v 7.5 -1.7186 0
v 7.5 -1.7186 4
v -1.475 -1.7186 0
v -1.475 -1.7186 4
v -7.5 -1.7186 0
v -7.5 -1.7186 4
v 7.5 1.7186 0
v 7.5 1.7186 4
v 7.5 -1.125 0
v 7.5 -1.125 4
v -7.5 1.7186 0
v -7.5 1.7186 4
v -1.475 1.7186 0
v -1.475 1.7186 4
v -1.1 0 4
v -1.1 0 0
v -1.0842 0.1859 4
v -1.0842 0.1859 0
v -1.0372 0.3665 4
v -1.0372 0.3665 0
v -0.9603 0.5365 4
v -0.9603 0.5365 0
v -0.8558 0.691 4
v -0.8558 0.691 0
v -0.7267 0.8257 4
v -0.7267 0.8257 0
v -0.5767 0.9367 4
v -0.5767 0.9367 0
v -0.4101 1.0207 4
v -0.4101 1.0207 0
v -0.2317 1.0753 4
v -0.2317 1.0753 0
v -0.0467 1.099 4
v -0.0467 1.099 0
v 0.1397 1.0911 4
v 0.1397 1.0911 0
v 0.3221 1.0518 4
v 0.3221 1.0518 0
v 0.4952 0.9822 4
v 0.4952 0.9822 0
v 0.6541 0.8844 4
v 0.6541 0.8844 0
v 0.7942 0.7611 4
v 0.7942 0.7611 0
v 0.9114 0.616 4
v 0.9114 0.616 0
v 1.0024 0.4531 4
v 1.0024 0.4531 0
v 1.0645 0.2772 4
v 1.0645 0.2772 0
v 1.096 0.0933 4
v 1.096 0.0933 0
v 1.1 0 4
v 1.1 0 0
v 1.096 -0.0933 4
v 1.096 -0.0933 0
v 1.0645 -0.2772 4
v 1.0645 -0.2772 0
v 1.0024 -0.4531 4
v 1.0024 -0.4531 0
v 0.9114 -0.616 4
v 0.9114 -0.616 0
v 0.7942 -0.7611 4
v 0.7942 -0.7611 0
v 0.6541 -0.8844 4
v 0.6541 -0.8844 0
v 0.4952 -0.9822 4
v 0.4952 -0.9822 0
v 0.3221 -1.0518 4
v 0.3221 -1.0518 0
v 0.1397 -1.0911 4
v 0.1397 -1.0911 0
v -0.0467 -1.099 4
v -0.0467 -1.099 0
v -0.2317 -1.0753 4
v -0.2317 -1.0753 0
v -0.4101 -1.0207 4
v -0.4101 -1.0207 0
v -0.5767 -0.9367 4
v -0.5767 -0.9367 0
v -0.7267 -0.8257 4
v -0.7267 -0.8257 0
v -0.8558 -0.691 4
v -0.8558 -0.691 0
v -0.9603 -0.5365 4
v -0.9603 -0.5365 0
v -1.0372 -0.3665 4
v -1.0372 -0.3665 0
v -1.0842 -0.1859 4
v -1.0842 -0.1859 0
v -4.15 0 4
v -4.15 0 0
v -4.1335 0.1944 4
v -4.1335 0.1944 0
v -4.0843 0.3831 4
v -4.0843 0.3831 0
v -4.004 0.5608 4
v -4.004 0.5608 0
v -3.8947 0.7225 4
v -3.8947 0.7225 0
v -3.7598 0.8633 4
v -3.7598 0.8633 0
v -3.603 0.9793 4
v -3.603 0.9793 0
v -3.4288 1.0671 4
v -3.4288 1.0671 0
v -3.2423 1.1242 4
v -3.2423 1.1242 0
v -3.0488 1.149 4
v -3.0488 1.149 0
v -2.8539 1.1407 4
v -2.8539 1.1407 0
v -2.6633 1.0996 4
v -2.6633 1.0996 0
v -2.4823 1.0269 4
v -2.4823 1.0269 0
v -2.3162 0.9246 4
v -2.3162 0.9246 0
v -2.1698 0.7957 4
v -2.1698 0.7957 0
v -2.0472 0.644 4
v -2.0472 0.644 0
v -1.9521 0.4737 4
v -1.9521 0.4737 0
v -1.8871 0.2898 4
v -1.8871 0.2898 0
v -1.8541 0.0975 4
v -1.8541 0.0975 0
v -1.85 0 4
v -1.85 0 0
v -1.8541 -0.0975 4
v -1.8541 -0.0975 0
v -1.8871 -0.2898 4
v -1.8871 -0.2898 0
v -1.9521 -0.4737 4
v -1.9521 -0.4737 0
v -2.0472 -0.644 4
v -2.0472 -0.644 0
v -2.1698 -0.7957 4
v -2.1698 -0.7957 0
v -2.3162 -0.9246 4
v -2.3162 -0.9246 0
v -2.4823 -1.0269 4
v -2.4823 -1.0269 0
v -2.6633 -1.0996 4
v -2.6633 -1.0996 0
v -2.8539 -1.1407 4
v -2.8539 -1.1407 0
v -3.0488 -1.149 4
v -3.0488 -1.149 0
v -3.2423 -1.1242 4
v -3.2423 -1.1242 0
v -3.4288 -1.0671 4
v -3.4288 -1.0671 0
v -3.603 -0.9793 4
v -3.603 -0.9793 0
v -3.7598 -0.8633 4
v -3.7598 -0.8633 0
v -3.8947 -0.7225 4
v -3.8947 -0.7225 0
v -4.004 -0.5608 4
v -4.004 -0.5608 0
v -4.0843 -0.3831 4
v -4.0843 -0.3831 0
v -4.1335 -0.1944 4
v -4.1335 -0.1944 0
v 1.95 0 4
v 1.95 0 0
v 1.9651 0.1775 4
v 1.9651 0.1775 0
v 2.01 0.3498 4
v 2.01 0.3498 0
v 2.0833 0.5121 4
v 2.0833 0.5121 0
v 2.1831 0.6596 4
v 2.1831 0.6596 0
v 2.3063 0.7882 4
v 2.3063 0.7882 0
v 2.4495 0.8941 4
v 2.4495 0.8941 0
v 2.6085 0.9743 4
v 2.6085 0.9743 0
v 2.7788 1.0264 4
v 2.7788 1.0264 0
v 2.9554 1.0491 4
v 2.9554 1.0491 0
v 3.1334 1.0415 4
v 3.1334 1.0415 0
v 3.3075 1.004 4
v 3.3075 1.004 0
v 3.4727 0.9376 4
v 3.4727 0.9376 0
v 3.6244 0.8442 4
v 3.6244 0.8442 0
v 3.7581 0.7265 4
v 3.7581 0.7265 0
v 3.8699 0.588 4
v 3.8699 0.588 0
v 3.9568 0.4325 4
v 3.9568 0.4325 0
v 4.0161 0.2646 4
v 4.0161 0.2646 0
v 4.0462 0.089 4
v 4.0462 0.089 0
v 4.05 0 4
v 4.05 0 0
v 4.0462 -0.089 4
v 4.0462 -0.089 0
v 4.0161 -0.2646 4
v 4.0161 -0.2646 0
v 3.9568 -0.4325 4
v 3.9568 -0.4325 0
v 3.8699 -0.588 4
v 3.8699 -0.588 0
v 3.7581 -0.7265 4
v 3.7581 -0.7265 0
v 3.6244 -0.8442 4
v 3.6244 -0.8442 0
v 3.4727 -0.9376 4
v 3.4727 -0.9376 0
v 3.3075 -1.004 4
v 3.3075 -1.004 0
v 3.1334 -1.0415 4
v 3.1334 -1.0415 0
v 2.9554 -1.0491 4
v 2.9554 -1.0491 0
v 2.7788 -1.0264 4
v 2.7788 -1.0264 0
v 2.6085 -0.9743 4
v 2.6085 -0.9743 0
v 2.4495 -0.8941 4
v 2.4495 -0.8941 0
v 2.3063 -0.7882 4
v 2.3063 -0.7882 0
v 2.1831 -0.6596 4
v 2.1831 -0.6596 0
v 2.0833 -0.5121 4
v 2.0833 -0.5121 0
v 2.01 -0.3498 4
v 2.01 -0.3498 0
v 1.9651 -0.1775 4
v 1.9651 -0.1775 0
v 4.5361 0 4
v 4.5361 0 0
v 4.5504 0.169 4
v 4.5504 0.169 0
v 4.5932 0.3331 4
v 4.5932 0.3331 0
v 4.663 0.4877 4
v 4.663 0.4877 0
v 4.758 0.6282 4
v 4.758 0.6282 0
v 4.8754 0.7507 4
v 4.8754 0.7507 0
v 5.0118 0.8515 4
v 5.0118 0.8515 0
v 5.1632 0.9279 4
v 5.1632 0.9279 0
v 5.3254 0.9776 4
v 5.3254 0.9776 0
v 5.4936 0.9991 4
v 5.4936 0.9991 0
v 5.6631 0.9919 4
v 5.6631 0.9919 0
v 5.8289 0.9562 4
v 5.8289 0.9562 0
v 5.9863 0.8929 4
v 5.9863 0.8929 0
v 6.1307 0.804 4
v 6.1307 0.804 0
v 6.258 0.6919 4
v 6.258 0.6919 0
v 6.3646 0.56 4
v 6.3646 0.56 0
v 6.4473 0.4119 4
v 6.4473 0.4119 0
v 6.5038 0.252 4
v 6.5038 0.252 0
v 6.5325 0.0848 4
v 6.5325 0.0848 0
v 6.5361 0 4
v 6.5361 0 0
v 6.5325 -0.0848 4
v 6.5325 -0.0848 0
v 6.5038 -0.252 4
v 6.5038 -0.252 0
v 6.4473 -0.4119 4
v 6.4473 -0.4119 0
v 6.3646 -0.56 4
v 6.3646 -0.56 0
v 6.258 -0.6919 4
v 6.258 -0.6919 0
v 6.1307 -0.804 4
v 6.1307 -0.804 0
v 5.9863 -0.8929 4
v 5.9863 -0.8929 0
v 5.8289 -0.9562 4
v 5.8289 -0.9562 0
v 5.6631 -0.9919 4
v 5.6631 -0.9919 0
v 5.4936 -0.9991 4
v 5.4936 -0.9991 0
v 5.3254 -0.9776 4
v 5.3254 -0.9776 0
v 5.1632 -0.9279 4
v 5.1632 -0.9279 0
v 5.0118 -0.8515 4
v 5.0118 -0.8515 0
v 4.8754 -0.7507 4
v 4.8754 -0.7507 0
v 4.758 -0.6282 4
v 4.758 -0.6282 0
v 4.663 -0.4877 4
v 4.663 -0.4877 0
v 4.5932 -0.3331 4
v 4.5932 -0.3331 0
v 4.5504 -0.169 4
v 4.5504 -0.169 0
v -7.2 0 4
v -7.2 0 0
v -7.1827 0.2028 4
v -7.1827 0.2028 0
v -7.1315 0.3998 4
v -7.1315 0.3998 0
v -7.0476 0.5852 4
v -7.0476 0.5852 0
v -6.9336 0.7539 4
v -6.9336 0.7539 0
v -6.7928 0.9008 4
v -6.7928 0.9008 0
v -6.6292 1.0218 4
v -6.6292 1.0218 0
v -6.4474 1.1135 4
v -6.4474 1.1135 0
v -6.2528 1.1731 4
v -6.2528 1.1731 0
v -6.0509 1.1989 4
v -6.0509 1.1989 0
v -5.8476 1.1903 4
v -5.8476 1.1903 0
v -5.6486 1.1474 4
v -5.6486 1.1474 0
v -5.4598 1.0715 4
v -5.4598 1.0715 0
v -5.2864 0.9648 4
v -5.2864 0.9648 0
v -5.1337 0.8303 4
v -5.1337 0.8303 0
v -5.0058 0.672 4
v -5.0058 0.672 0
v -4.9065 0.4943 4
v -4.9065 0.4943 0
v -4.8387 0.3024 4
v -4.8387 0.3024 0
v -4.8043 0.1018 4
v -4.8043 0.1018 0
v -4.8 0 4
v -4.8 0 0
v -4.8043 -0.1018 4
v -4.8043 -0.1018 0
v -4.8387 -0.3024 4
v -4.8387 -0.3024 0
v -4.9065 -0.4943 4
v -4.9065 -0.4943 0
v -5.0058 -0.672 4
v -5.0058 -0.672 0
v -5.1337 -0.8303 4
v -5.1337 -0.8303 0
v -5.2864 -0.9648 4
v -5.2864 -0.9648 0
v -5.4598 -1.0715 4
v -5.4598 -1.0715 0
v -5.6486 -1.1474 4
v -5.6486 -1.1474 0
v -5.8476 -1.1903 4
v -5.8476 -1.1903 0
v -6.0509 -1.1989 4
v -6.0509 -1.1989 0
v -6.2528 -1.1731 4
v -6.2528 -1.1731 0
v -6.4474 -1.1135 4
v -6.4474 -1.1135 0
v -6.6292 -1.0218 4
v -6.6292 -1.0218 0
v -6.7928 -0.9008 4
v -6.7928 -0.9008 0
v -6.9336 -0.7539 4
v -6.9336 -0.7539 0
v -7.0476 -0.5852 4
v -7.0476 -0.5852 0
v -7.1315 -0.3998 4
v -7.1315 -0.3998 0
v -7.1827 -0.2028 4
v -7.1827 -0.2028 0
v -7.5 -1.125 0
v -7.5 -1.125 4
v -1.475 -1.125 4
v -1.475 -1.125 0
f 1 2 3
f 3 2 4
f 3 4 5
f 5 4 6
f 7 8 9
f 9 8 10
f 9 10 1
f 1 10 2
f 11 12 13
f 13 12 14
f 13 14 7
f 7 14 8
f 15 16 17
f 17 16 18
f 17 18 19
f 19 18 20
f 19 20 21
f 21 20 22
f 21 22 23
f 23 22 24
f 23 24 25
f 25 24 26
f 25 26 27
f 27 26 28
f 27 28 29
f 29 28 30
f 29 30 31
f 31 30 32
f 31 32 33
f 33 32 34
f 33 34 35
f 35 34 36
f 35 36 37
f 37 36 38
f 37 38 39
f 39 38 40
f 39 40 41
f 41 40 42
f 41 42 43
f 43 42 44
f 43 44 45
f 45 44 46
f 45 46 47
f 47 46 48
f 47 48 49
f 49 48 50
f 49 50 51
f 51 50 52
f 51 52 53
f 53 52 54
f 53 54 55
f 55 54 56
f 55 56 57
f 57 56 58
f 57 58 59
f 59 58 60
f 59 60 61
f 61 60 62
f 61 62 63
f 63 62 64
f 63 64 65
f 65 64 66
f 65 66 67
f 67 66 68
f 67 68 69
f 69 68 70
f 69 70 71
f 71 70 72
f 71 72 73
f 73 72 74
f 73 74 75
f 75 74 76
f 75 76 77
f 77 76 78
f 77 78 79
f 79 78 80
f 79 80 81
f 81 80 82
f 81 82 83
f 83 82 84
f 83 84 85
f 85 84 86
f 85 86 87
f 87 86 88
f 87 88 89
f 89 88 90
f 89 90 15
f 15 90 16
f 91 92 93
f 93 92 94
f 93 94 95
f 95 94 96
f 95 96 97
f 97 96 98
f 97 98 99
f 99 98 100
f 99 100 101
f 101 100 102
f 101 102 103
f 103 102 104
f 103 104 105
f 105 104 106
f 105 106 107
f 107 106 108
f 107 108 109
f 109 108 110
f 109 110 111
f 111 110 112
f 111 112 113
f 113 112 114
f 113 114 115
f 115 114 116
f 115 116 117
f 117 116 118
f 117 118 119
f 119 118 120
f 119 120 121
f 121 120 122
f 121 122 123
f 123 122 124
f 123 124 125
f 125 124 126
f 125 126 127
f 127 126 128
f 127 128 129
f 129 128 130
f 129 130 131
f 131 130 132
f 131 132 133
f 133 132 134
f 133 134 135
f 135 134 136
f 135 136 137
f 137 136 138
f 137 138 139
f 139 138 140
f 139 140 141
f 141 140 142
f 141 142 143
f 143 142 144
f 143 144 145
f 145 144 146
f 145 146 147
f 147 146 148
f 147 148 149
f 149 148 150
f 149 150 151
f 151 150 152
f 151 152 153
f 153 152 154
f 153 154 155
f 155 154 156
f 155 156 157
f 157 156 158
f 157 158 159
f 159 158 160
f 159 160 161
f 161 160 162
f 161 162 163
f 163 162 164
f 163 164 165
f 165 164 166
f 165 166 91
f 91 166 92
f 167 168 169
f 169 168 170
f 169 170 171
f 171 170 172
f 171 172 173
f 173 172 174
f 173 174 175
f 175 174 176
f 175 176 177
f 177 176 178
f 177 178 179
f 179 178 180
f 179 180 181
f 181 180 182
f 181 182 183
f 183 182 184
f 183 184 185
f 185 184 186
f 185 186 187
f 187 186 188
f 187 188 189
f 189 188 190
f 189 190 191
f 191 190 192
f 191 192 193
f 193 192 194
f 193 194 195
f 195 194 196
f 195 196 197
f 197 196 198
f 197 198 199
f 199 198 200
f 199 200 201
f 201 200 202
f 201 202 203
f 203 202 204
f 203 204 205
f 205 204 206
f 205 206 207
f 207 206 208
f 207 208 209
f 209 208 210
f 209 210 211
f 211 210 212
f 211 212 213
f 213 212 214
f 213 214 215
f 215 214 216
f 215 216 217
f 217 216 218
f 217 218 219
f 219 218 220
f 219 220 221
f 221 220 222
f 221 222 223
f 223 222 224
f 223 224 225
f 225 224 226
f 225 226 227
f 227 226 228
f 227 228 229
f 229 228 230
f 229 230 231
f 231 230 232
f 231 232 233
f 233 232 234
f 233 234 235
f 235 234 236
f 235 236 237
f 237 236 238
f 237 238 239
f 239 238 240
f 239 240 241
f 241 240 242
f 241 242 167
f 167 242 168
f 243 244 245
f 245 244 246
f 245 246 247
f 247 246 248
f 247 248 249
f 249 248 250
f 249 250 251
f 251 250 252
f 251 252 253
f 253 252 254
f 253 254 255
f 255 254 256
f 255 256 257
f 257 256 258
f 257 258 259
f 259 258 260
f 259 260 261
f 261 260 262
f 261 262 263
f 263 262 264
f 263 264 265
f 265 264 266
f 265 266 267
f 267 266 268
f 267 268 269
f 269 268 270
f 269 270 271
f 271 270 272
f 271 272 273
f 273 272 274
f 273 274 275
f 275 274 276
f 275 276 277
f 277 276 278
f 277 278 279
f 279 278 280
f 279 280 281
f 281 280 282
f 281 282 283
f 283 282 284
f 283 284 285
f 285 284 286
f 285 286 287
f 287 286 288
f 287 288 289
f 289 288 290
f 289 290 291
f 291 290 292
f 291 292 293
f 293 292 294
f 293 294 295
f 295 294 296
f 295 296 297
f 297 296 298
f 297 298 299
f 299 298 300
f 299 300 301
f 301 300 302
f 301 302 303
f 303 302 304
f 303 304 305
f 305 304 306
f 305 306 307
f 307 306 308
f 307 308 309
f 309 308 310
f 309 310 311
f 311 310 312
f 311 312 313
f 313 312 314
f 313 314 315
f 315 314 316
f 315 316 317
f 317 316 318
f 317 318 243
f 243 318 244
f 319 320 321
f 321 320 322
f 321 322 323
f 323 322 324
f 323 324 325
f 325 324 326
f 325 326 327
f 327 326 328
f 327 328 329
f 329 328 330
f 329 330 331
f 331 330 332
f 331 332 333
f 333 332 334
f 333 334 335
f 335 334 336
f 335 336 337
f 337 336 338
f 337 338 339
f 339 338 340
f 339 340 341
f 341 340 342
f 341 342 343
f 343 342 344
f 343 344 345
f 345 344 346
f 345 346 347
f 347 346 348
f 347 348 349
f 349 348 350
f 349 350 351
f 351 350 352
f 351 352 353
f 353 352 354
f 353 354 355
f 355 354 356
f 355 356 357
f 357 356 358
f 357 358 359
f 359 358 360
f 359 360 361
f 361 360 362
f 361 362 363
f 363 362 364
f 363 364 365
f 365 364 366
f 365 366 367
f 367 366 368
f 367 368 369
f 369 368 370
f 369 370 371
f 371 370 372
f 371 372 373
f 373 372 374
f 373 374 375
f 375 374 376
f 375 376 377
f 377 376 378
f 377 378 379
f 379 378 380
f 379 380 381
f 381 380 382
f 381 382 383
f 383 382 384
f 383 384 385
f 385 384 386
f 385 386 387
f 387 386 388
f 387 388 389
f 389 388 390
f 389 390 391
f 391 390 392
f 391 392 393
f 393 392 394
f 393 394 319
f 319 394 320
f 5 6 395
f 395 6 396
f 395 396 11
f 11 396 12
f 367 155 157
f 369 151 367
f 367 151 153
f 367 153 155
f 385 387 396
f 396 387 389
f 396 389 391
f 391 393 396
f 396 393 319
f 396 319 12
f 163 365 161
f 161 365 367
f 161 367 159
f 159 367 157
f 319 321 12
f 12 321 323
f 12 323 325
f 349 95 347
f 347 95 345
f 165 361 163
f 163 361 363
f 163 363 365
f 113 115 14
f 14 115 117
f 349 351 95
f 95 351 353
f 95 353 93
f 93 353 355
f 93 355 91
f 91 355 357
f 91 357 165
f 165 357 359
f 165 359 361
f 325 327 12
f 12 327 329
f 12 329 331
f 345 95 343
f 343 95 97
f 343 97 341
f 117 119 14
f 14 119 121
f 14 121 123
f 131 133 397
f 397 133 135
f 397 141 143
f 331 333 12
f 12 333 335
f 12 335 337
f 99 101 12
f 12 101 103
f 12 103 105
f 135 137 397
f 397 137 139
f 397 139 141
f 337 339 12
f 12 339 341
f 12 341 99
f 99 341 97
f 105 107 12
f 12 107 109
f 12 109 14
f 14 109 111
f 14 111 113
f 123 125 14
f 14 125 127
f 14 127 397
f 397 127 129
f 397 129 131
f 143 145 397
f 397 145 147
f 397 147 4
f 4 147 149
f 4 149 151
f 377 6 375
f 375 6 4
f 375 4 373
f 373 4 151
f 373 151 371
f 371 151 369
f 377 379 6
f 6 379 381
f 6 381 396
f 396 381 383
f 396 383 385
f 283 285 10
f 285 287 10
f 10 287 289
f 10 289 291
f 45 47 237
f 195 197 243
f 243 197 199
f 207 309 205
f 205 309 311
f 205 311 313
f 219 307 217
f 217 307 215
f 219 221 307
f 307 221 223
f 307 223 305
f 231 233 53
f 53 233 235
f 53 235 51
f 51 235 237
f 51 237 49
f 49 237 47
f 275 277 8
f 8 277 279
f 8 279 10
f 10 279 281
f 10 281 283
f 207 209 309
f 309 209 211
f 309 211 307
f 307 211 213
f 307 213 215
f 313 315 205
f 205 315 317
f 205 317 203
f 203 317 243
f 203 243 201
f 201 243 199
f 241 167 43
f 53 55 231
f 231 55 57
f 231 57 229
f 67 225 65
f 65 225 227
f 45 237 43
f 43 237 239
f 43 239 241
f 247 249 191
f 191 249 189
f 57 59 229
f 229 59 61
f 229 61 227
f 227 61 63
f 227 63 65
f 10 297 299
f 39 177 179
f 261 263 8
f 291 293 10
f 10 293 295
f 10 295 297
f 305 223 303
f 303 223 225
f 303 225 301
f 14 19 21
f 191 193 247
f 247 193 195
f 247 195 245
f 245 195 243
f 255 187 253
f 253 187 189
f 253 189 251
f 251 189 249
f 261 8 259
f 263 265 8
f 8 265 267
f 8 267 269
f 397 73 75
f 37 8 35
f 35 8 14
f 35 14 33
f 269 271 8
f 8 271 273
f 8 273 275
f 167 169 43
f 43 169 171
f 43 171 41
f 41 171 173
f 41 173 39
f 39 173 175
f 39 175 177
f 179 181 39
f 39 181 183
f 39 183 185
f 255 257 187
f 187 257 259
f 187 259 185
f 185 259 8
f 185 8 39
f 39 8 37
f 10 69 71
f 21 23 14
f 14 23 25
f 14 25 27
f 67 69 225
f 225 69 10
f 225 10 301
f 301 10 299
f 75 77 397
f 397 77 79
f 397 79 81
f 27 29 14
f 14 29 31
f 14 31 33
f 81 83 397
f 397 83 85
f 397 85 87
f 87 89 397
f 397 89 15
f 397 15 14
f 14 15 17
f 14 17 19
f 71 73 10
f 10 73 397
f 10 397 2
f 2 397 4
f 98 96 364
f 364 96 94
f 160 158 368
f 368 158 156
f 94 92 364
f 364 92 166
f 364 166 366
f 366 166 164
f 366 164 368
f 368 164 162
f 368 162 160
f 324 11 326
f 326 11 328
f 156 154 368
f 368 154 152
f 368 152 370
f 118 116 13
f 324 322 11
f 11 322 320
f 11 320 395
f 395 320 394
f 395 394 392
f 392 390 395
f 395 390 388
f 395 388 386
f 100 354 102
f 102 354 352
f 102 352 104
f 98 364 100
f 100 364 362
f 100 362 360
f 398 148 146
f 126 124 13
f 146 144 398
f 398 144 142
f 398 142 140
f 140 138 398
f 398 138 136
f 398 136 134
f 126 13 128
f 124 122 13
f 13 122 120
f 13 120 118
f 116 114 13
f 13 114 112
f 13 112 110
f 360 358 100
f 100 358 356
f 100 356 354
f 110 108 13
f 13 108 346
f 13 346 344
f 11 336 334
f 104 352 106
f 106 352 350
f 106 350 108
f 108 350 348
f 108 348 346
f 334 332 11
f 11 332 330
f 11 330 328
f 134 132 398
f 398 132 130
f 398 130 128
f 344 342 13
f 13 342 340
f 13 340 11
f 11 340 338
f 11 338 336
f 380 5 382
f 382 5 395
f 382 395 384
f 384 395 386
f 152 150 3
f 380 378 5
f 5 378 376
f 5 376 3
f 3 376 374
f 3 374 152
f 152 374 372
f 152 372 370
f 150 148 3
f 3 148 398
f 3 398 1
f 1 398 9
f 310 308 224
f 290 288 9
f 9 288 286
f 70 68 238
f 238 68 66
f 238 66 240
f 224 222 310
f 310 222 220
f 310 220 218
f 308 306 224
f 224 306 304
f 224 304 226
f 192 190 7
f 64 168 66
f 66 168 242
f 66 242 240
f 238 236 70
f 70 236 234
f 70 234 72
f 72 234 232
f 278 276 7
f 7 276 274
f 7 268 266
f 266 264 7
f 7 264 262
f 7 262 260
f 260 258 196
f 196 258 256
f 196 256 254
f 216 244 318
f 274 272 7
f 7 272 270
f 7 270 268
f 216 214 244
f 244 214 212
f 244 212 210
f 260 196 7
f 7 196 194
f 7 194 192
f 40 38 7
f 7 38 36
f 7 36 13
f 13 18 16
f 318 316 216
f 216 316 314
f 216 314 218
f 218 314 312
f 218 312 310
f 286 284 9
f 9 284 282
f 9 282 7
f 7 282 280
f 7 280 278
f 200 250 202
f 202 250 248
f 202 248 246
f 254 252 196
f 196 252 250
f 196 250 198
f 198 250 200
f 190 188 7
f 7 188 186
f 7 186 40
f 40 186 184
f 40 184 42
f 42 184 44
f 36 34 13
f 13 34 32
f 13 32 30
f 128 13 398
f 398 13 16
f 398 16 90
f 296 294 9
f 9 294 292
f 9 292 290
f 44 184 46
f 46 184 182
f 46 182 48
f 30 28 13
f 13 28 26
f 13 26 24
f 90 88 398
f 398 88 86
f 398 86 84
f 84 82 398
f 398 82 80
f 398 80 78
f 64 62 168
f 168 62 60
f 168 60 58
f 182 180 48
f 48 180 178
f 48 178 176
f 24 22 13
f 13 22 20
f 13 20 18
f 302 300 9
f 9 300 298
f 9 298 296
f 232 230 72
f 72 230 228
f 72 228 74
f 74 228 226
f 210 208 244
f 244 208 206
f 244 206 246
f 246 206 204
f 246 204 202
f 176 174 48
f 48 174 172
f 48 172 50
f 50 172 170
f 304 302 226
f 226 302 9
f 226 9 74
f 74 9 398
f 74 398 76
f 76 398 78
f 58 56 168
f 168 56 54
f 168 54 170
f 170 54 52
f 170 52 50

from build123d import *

# Parameters (mm, degrees)
SKETCH1_W           = 15
SKETCH1_H           = 3.437195072
SKETCH1_R           = 1.2
SKETCH1_R_2         = 1
SKETCH1_R_3         = 1.05
SKETCH1_R_4         = 1.15
SKETCH1_R_5         = 1.1
BOSS_EXTRUDE1_DEPTH = 4


with BuildPart() as part:
    # Sketch1 → Boss-Extrude1 (new body)
    with BuildSketch(Plane.XY):
        Rectangle(SKETCH1_W, SKETCH1_H)
        with Locations((-6, 0)):
            Circle(SKETCH1_R, mode=Mode.SUBTRACT)
        with Locations((5.536057004, 0)):
            Circle(SKETCH1_R_2, mode=Mode.SUBTRACT)
        with Locations((3, 0)):
            Circle(SKETCH1_R_3, mode=Mode.SUBTRACT)
        with Locations((-3, 0)):
            Circle(SKETCH1_R_4, mode=Mode.SUBTRACT)
        Circle(SKETCH1_R_5, mode=Mode.SUBTRACT)
    extrude(amount=BOSS_EXTRUDE1_DEPTH)


solid = part.part
